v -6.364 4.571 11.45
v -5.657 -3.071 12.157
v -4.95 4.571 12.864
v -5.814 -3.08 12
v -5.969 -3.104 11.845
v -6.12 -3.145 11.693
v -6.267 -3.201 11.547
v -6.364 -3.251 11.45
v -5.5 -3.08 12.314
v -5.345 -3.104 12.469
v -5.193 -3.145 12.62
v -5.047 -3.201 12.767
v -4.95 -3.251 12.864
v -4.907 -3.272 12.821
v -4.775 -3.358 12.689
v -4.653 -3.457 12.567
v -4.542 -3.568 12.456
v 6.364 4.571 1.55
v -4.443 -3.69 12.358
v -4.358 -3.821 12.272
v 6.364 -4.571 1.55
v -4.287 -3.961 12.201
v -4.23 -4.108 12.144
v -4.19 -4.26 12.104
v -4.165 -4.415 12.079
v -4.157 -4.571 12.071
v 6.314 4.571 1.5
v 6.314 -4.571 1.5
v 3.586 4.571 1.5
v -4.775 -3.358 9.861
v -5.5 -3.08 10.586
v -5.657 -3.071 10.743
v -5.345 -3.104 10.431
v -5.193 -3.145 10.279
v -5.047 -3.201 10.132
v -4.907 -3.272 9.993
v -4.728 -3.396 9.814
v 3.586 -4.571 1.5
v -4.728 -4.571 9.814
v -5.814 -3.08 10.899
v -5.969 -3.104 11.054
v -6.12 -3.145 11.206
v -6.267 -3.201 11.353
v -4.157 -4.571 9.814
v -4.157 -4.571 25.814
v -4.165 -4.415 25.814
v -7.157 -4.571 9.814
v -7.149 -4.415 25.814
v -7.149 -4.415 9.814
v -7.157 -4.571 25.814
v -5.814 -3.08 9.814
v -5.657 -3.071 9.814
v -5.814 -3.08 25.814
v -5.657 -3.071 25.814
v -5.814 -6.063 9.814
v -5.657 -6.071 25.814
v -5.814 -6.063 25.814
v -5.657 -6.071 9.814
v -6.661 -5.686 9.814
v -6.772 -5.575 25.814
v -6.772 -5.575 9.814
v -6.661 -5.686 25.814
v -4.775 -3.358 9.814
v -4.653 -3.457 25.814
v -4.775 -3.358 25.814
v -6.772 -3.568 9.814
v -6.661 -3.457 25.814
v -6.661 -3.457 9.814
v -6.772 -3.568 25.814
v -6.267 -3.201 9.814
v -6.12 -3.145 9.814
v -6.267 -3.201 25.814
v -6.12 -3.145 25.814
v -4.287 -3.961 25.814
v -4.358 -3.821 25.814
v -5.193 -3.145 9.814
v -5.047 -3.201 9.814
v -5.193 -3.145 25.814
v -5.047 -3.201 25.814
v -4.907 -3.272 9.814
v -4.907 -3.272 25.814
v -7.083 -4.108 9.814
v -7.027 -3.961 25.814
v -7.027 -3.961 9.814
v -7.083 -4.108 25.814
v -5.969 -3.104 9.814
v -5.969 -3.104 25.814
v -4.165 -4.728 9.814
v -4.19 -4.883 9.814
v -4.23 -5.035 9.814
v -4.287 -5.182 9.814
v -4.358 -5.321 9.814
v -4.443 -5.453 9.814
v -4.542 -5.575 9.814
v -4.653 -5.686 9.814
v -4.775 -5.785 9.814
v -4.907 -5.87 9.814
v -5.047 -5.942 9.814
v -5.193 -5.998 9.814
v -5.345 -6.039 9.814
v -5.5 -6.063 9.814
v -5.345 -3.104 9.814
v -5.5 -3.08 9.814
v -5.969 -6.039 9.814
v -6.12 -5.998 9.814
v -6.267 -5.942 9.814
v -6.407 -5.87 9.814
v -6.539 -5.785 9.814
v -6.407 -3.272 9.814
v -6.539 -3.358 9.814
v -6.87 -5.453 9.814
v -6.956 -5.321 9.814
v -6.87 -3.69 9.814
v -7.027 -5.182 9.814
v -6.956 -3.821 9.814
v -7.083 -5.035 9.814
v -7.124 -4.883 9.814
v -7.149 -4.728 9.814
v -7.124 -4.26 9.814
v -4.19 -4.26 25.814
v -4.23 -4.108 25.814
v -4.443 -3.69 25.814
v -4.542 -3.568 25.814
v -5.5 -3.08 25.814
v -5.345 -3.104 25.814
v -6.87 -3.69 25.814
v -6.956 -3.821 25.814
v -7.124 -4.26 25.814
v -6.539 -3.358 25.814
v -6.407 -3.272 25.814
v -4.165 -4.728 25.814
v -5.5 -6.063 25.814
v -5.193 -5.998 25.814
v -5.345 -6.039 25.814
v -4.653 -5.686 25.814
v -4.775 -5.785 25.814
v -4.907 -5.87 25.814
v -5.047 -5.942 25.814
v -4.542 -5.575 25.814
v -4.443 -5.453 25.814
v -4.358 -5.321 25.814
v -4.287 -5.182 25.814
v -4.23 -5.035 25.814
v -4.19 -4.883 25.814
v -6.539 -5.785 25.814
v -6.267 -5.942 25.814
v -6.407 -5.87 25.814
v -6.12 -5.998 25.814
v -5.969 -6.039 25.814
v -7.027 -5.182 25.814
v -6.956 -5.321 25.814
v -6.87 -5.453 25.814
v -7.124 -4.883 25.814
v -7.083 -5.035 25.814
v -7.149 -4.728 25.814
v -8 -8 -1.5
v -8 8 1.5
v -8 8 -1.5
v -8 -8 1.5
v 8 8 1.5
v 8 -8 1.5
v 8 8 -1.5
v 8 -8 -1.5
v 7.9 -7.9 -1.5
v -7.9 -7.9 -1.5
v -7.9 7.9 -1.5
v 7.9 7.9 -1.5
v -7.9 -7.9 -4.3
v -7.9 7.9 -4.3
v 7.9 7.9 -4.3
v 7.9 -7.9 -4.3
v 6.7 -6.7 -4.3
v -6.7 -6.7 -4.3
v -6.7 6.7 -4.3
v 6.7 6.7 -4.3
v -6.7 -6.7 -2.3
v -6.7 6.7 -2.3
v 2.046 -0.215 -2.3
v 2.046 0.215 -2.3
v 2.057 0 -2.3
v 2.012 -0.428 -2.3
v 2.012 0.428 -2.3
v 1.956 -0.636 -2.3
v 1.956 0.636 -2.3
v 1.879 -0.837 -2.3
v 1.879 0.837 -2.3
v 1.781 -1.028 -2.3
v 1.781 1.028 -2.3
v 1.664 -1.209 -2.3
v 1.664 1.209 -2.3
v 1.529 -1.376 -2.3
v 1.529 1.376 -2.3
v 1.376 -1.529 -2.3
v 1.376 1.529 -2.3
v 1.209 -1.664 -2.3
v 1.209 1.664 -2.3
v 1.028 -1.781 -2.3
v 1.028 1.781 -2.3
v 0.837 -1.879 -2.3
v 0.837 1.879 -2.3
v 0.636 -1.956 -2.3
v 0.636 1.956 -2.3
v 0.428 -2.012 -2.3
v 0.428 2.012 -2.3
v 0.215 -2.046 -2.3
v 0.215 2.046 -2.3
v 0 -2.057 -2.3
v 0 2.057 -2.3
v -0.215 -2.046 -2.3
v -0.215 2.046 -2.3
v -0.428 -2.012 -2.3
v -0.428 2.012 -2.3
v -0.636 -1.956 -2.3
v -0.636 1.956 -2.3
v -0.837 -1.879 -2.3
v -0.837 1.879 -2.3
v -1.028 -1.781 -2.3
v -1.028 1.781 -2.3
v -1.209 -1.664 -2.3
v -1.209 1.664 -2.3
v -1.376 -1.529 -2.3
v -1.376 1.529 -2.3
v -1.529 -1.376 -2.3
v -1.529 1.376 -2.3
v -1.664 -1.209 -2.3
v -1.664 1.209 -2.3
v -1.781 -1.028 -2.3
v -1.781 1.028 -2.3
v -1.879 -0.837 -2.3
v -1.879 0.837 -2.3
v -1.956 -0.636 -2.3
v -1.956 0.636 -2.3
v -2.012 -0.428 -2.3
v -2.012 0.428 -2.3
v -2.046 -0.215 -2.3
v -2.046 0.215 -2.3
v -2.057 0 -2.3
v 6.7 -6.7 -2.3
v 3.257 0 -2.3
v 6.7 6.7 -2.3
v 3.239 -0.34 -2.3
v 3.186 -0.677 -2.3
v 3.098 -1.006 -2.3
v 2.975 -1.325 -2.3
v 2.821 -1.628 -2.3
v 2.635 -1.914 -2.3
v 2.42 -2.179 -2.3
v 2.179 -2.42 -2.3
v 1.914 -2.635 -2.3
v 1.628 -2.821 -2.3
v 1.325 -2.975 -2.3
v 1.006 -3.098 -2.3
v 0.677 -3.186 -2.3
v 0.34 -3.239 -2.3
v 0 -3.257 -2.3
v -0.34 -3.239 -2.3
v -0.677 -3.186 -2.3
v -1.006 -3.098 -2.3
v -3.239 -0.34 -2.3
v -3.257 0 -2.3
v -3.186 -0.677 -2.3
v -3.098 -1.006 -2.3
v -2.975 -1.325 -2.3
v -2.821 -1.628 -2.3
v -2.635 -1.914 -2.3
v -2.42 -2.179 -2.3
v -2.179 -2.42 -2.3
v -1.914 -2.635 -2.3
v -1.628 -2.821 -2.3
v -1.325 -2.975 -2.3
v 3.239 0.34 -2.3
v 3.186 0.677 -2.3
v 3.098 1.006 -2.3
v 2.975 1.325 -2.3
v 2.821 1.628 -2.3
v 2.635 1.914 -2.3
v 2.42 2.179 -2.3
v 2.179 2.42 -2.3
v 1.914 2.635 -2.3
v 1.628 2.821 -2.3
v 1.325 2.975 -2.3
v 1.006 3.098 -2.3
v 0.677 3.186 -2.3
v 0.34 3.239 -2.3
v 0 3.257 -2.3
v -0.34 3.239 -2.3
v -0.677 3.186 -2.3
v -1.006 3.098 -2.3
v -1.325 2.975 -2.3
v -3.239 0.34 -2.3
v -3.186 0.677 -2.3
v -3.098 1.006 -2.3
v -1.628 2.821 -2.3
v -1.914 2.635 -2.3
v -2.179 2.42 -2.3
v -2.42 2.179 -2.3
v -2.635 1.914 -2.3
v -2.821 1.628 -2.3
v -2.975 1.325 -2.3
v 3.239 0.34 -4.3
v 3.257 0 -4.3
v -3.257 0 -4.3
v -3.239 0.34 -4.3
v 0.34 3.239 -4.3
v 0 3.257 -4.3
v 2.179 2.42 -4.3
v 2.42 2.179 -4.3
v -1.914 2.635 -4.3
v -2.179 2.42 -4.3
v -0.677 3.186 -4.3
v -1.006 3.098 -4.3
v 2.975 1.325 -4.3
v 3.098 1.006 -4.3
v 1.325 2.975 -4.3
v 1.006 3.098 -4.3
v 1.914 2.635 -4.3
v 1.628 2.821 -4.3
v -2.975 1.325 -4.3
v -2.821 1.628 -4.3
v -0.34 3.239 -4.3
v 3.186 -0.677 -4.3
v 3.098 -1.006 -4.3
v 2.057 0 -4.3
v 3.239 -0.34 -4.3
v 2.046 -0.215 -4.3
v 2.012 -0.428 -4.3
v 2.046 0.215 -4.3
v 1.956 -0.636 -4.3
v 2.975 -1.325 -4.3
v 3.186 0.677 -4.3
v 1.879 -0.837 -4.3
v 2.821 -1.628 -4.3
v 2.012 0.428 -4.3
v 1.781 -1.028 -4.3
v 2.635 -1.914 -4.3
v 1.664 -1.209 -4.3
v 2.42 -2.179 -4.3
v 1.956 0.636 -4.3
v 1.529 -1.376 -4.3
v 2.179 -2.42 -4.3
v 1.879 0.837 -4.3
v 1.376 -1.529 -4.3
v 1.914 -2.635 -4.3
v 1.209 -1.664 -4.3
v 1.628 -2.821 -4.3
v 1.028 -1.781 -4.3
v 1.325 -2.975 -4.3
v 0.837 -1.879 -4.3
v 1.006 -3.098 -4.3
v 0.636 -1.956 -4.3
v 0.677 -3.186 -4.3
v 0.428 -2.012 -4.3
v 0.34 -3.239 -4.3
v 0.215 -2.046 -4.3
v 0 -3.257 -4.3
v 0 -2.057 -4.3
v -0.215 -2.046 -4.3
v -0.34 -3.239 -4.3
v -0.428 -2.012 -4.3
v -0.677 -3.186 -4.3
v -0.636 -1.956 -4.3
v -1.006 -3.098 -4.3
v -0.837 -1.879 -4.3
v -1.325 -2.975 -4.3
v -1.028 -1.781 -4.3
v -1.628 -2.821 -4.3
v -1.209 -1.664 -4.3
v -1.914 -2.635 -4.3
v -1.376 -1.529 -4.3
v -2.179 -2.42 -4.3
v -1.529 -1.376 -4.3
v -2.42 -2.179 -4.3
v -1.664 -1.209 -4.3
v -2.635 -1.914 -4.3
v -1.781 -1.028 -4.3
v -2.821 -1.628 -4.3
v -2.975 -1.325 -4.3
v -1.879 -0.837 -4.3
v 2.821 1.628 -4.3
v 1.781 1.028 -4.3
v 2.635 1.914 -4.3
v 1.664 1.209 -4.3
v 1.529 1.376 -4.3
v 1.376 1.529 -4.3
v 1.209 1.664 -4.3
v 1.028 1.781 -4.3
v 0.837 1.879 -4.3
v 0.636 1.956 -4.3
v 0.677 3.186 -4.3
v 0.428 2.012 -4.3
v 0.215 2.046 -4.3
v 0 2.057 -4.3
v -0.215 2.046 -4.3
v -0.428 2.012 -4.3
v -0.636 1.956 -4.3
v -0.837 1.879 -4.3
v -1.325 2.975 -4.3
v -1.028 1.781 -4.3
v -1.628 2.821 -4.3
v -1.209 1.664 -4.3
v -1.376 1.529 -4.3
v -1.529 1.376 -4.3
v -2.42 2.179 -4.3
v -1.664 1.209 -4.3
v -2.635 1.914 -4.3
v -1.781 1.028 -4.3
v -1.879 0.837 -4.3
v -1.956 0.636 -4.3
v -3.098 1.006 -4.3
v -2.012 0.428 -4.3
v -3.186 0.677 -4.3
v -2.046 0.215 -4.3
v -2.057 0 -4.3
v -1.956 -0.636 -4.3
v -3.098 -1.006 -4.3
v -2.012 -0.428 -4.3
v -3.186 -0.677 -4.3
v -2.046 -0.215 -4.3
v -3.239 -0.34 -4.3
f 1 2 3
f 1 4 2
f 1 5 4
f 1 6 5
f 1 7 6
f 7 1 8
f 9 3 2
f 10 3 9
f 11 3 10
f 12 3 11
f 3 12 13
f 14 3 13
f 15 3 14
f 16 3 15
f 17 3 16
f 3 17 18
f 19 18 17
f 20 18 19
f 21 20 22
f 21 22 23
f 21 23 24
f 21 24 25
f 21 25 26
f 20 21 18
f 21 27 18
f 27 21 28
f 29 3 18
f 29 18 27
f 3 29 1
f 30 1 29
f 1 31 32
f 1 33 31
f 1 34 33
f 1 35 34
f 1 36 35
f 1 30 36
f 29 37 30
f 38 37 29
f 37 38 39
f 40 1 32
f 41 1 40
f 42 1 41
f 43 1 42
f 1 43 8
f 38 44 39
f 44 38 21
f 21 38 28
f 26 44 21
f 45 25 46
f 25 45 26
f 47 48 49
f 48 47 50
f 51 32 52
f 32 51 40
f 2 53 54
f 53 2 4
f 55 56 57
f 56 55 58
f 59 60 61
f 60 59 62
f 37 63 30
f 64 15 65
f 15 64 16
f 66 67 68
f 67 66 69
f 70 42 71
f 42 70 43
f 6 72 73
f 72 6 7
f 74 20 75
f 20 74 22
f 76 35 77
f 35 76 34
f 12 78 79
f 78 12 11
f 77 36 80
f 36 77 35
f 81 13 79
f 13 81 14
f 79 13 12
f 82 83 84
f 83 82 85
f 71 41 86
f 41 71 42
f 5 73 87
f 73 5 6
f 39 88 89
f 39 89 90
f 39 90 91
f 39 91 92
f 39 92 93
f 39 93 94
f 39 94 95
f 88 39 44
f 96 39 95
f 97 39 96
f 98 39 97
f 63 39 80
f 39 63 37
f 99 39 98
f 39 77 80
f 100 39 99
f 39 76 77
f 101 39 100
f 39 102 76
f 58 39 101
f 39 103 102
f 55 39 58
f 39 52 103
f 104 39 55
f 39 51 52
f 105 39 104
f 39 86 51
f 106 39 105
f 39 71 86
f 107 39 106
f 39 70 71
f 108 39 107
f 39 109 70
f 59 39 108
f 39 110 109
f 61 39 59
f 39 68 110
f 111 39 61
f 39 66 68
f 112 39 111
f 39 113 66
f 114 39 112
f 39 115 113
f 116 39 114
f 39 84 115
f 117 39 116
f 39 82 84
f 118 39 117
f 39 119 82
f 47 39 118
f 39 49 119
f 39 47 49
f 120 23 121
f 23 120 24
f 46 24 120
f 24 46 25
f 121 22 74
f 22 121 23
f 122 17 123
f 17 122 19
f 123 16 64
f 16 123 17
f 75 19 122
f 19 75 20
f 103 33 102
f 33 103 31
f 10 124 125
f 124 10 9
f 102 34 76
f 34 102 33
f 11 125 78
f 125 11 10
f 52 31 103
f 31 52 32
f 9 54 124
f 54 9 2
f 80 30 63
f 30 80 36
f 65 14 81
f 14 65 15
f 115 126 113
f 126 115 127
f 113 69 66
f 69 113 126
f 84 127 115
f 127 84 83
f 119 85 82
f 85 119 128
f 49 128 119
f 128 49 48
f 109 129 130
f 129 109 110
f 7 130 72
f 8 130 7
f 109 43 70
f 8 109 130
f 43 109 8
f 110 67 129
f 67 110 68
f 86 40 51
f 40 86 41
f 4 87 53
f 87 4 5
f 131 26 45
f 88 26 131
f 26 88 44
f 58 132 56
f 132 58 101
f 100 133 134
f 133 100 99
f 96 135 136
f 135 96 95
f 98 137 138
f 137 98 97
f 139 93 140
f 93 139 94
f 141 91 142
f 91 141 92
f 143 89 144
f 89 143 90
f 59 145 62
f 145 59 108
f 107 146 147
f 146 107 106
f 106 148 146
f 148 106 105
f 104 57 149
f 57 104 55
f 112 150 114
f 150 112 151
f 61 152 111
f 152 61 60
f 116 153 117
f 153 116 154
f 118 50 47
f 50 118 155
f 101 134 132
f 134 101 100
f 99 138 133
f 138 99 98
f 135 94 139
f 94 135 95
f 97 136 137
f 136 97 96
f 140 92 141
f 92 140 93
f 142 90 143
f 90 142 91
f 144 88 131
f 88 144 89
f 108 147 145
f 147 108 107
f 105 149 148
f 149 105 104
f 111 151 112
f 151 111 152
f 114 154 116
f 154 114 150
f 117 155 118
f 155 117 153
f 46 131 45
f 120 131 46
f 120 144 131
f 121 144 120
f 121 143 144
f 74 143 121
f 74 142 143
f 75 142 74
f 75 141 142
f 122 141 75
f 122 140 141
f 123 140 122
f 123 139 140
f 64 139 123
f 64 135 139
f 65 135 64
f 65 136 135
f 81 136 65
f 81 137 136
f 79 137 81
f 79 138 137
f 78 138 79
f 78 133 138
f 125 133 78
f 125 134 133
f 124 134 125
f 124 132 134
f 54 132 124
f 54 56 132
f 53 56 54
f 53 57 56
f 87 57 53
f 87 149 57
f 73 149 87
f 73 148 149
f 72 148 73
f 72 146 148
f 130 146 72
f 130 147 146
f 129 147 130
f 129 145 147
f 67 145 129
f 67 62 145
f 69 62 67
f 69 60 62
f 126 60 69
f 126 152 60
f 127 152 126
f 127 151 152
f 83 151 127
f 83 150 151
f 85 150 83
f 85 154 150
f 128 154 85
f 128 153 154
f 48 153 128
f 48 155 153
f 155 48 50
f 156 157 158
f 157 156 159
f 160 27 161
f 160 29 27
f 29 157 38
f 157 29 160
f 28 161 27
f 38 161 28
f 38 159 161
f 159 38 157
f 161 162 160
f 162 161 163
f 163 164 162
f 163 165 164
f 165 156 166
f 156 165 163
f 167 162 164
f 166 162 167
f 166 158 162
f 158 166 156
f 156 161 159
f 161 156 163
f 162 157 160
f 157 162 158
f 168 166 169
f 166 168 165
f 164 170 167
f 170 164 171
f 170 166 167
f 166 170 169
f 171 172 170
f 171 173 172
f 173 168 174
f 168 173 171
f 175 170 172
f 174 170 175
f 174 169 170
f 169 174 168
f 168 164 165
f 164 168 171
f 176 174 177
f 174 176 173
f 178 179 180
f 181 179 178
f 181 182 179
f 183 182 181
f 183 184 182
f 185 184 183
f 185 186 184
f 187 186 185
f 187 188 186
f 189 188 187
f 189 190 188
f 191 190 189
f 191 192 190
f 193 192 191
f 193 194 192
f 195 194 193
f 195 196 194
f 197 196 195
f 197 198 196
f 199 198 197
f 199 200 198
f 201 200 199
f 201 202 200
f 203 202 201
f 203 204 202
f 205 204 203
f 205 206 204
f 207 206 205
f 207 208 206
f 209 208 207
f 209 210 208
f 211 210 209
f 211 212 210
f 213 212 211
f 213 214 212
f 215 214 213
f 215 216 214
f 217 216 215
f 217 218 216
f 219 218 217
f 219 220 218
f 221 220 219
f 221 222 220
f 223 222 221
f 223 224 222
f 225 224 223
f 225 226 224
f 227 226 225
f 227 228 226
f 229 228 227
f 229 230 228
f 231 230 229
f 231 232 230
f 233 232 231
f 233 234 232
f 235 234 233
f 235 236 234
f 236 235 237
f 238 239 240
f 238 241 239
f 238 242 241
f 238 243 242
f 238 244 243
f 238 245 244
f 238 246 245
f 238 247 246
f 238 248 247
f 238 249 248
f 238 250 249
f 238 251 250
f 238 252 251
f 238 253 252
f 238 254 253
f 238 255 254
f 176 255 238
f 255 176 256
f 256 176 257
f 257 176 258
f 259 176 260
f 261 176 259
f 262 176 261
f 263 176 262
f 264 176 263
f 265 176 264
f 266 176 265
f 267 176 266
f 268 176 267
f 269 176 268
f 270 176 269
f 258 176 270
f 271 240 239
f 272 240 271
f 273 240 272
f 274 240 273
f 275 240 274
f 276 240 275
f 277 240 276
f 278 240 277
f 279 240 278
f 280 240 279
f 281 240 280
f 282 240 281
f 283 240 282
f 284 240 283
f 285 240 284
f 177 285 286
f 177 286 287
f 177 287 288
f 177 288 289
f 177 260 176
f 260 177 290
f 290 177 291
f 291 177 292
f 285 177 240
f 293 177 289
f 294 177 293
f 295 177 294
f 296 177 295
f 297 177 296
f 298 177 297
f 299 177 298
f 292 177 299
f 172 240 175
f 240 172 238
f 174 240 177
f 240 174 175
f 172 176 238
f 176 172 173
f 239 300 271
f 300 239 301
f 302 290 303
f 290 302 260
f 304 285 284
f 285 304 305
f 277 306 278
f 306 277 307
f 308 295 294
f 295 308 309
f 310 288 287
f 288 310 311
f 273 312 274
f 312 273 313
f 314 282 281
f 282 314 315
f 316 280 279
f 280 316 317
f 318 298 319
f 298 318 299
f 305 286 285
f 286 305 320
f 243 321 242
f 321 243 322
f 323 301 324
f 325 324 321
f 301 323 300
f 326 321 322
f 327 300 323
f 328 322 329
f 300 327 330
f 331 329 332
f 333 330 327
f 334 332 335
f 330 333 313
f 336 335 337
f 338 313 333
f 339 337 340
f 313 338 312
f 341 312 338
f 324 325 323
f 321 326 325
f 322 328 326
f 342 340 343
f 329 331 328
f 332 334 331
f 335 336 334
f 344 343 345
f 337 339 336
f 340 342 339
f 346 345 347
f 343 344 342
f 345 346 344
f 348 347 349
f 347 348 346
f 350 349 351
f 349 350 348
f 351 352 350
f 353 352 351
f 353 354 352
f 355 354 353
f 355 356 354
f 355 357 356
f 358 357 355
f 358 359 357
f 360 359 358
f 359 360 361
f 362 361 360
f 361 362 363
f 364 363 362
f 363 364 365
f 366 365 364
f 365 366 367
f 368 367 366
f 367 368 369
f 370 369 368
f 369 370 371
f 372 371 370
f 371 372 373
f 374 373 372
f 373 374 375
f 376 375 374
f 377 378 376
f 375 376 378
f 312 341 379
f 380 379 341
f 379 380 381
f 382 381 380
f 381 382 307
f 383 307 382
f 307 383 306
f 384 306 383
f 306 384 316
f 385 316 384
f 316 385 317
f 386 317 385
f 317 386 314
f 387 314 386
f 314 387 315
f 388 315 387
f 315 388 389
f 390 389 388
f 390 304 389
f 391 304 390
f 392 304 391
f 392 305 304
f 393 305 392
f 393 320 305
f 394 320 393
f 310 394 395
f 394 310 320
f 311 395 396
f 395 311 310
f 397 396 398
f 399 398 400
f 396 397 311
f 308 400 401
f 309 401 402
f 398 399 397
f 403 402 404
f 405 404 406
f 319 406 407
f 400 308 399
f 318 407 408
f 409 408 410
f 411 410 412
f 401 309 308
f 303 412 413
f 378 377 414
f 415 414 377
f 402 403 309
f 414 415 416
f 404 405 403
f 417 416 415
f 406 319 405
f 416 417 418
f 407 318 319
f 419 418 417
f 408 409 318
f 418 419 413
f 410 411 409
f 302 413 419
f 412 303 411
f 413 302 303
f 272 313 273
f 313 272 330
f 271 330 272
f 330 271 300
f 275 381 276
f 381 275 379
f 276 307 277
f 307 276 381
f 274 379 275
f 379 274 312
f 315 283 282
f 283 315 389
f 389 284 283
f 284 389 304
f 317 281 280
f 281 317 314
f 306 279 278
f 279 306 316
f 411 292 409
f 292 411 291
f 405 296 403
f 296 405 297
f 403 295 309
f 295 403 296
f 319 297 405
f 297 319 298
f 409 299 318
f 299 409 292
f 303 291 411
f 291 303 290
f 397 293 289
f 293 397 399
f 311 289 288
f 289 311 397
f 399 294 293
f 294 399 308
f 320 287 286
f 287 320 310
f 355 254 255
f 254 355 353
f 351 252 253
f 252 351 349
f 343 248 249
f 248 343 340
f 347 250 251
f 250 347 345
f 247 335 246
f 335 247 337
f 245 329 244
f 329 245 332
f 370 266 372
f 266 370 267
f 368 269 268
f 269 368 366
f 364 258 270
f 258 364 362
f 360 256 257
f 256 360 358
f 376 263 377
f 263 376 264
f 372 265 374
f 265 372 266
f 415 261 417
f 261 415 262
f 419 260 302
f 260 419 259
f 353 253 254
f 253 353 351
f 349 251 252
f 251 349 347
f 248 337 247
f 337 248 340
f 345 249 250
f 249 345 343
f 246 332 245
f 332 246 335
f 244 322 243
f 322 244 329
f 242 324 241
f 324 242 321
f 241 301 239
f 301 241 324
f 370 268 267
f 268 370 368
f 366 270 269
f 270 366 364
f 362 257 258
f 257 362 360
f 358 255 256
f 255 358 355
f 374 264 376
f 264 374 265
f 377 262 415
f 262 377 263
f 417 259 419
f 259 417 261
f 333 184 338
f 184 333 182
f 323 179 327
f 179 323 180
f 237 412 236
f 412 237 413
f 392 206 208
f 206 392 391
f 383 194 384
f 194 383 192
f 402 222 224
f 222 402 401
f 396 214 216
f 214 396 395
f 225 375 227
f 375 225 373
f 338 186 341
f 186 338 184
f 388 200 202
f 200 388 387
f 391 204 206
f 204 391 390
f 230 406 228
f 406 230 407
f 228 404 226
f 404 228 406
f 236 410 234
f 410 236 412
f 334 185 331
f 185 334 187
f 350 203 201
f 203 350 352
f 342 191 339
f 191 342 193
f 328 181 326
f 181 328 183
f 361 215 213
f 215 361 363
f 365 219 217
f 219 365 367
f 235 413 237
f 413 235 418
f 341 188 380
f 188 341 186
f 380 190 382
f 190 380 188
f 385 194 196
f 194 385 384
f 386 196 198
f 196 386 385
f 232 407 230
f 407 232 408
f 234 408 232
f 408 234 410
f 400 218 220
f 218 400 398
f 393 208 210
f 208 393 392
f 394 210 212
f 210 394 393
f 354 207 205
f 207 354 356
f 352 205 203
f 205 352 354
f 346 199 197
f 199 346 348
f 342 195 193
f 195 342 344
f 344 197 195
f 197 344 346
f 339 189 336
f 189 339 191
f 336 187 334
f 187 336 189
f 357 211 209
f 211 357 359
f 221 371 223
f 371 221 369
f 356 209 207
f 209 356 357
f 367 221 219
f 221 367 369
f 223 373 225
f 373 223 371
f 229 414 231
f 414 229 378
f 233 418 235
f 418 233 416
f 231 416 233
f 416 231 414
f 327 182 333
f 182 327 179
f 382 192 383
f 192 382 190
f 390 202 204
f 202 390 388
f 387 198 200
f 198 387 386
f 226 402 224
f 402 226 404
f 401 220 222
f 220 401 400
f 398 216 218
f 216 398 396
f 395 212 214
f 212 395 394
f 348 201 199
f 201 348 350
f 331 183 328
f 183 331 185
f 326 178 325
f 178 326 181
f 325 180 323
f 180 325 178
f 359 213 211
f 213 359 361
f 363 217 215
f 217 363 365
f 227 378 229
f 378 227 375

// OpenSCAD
// file: LegoBase.scad
$fn = 60;
rOuter = 3.257;
rInner = 2.057;
bOuter = 15.8;
bInner = 13.4;
bOuterZ = 3.2;
bInnerZ = 2;

bInnerOffset = (bOuter-bInner)/2;
boxCenter = bOuter/2;


module LegoBase() {
translate([-bOuter/2, -bOuter/2, -bOuterZ])
    {
    difference() {
        cube([bOuter,bOuter,bOuterZ]);
        translate([bInnerOffset,bInnerOffset,0]) cube([bInner,bInner,bInnerZ]);
    };

    difference() {
        translate([boxCenter,boxCenter,0]) cylinder(h=bInnerZ, r=rOuter);
        translate([boxCenter,boxCenter,0]) cylinder(h=bInnerZ, r=rInner);
    };
}
}
// main file
include <LegoBase.scad>
baseX = 16;
baseY = 16;
baseZ = 3;

phoneX = baseX*1;
phoneY = baseY/1.75;
phoneZ = 2;
phoneTilt = 45;

$fn = 60;

topAngle = 180-90-phoneTilt;
phoneHeight = phoneX * sin(phoneTilt)/sin(90);
phoneOffset = phoneX * sin(topAngle)/sin(90);

echo("Top Angle: ", topAngle);
echo("Phone Height: ", phoneHeight);
echo("Phone Offset: ", phoneOffset);

scale([1.0,1.0,1.0]) {
    union() {
        translate([0,0,(phoneX/2)-baseZ/2]) rotate([0,phoneTilt,0]) cube([phoneX, phoneY, phoneZ], center=true);

        translate([-phoneOffset/2, -phoneY/2, phoneHeight-baseZ/2]) cylinder(r=1.5, h=phoneX);

        cube([baseX, baseY, baseZ], center=true);
    }
}
translate([0,0,-1.1])
LegoBase();
